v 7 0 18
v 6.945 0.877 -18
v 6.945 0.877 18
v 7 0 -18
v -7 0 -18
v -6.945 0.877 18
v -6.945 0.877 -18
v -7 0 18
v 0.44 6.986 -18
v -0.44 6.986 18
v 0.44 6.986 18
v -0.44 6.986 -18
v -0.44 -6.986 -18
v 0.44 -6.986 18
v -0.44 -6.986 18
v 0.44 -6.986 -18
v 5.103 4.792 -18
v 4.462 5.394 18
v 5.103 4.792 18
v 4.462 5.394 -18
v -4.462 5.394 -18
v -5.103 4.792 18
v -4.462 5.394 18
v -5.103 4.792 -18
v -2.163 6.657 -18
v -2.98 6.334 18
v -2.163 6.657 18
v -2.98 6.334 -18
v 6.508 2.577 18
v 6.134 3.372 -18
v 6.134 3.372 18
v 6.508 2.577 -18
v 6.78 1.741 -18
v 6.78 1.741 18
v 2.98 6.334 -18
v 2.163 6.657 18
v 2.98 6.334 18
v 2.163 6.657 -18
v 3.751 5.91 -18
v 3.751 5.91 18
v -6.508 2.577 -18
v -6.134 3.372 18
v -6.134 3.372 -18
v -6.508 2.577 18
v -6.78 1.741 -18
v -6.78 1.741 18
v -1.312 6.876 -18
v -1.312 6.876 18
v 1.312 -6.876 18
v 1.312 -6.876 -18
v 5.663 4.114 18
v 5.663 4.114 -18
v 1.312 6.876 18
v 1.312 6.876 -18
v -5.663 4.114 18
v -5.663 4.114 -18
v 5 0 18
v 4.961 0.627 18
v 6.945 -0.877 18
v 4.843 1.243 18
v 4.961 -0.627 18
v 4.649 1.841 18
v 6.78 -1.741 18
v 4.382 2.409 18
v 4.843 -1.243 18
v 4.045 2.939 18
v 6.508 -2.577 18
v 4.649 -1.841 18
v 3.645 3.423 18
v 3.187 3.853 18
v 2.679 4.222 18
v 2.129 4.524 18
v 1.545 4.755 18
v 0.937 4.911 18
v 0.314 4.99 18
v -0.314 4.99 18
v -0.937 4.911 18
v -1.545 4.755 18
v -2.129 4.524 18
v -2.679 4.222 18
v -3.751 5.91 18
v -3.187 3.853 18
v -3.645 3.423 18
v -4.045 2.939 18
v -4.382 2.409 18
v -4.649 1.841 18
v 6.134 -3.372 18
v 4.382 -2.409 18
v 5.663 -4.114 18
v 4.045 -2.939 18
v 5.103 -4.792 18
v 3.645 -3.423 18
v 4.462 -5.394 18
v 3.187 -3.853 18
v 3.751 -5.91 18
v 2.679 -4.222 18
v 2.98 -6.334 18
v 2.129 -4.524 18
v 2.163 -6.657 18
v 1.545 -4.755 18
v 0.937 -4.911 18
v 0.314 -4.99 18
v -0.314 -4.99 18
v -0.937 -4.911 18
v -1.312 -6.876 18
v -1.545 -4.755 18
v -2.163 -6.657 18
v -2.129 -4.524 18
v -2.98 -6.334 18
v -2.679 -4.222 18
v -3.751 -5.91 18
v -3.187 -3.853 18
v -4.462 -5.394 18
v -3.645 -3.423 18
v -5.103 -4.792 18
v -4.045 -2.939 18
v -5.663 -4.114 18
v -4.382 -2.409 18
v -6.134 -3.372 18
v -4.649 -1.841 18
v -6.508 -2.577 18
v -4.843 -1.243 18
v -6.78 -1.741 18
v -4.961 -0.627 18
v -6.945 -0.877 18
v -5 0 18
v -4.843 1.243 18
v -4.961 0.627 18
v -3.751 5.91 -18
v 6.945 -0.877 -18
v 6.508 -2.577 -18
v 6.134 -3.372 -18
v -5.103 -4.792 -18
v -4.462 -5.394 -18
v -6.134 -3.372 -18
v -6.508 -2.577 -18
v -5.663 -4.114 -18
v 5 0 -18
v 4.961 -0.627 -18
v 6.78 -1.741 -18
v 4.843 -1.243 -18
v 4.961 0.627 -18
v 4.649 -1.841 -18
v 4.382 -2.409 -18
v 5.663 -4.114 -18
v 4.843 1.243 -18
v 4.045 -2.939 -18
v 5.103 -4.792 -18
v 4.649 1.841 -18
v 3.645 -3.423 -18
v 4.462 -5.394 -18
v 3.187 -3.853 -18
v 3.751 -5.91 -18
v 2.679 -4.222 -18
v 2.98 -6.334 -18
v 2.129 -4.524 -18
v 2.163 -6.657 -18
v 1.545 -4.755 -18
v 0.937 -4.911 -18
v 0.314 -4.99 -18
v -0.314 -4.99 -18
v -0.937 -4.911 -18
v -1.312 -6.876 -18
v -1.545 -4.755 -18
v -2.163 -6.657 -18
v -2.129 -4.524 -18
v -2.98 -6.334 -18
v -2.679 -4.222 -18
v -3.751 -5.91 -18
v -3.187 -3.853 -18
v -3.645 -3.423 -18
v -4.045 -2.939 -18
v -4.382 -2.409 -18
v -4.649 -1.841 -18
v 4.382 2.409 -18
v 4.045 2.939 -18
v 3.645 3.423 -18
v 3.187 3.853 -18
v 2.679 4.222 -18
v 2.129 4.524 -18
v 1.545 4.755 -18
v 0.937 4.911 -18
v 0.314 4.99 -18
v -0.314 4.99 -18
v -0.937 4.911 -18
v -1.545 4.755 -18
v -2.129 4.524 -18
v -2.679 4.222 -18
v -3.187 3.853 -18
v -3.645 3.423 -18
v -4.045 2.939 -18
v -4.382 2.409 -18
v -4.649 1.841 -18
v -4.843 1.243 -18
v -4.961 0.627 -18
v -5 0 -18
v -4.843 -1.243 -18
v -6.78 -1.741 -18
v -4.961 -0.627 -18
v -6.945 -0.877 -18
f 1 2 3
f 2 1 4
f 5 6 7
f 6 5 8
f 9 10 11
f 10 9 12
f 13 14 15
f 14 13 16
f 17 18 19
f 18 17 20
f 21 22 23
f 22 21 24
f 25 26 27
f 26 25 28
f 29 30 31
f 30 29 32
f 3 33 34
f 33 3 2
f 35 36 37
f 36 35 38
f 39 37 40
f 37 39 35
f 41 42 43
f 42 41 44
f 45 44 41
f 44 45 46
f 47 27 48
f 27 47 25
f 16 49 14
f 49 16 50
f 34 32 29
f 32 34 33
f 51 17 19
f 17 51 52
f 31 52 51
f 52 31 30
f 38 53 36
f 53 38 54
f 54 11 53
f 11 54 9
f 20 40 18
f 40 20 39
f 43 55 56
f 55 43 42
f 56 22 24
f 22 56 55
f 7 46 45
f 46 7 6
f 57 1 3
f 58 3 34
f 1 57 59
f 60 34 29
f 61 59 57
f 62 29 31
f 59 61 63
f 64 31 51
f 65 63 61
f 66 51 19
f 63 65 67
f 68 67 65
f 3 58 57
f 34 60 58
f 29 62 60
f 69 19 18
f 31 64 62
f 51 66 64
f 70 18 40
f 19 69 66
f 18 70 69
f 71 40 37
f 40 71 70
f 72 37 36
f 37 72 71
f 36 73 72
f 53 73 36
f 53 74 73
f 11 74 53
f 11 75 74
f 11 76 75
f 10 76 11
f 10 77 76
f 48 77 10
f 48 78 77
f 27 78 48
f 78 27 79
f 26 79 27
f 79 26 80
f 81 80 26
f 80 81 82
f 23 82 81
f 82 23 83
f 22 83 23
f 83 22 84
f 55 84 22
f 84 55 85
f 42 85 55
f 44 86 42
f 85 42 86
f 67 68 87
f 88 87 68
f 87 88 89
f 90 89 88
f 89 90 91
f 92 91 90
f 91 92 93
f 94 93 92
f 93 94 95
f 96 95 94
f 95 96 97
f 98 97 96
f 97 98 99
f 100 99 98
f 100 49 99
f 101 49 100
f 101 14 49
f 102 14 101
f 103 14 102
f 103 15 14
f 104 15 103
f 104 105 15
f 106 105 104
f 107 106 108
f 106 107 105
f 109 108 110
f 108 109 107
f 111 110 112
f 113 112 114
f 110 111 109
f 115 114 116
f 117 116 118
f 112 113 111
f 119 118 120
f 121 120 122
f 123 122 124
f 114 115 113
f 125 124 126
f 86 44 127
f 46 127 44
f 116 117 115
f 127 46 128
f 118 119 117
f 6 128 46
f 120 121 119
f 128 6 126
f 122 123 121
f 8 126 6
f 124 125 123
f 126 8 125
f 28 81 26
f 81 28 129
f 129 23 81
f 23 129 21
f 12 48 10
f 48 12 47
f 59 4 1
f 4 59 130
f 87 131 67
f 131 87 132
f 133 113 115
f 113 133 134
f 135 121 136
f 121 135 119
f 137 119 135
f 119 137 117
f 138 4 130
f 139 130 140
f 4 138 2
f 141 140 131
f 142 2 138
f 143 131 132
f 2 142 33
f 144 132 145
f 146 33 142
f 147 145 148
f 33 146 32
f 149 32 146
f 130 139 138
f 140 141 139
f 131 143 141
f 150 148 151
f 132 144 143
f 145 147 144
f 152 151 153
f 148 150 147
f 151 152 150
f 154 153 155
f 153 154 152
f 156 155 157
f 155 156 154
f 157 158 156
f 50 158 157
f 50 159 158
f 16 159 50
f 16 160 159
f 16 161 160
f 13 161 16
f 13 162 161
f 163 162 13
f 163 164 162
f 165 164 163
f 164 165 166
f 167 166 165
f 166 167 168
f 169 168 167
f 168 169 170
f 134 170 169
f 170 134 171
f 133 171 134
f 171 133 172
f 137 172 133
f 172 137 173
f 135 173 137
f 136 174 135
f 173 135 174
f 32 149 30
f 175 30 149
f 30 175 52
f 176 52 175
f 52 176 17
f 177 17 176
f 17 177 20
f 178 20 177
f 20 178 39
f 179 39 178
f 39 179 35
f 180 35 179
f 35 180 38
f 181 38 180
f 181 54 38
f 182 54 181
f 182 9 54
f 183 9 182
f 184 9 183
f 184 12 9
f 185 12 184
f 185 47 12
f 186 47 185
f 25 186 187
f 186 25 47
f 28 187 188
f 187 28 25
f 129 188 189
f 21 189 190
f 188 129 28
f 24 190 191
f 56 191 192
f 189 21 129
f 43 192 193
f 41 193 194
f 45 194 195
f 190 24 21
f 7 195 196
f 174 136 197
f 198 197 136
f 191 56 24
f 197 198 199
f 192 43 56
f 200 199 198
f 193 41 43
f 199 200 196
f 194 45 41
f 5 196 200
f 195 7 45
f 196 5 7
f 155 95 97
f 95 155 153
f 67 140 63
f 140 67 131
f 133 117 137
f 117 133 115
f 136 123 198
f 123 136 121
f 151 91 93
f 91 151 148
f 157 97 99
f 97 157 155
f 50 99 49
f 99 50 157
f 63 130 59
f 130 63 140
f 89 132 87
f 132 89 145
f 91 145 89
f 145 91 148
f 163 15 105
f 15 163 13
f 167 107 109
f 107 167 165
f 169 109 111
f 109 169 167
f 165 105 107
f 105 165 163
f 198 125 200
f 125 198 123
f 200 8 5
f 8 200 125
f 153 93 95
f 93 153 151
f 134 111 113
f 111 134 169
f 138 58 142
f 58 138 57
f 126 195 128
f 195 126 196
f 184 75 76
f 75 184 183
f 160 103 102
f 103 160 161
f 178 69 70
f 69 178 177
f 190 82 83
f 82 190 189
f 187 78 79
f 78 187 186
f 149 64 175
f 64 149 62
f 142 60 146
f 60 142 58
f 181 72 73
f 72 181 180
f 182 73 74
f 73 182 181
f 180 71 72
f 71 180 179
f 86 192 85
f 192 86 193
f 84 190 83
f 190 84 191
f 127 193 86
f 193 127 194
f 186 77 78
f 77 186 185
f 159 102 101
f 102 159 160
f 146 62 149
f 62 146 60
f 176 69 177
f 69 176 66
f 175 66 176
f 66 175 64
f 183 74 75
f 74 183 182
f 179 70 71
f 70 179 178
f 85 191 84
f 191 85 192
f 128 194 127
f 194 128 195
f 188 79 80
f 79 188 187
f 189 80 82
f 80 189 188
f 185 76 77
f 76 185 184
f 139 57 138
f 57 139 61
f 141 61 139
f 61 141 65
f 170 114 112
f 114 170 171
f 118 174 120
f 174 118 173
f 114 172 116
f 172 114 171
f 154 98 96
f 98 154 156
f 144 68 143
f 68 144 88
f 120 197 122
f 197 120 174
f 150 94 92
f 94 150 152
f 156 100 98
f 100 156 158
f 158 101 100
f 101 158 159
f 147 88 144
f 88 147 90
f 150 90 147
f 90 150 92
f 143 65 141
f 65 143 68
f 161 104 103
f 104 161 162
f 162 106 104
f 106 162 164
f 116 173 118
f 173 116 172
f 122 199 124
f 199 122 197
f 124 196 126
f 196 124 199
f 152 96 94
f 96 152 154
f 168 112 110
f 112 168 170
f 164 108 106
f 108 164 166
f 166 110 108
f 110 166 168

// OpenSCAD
$fn = 50;


difference() {
	union() {
		translate(v = [0, 0, -18.0000000000]) {
			cylinder(h = 36, r = 7.0000000000);
		}
	}
	union() {
		translate(v = [0, 0, -100.0000000000]) {
			cylinder(h = 200, r = 5.0000000000);
		}
	}
}
